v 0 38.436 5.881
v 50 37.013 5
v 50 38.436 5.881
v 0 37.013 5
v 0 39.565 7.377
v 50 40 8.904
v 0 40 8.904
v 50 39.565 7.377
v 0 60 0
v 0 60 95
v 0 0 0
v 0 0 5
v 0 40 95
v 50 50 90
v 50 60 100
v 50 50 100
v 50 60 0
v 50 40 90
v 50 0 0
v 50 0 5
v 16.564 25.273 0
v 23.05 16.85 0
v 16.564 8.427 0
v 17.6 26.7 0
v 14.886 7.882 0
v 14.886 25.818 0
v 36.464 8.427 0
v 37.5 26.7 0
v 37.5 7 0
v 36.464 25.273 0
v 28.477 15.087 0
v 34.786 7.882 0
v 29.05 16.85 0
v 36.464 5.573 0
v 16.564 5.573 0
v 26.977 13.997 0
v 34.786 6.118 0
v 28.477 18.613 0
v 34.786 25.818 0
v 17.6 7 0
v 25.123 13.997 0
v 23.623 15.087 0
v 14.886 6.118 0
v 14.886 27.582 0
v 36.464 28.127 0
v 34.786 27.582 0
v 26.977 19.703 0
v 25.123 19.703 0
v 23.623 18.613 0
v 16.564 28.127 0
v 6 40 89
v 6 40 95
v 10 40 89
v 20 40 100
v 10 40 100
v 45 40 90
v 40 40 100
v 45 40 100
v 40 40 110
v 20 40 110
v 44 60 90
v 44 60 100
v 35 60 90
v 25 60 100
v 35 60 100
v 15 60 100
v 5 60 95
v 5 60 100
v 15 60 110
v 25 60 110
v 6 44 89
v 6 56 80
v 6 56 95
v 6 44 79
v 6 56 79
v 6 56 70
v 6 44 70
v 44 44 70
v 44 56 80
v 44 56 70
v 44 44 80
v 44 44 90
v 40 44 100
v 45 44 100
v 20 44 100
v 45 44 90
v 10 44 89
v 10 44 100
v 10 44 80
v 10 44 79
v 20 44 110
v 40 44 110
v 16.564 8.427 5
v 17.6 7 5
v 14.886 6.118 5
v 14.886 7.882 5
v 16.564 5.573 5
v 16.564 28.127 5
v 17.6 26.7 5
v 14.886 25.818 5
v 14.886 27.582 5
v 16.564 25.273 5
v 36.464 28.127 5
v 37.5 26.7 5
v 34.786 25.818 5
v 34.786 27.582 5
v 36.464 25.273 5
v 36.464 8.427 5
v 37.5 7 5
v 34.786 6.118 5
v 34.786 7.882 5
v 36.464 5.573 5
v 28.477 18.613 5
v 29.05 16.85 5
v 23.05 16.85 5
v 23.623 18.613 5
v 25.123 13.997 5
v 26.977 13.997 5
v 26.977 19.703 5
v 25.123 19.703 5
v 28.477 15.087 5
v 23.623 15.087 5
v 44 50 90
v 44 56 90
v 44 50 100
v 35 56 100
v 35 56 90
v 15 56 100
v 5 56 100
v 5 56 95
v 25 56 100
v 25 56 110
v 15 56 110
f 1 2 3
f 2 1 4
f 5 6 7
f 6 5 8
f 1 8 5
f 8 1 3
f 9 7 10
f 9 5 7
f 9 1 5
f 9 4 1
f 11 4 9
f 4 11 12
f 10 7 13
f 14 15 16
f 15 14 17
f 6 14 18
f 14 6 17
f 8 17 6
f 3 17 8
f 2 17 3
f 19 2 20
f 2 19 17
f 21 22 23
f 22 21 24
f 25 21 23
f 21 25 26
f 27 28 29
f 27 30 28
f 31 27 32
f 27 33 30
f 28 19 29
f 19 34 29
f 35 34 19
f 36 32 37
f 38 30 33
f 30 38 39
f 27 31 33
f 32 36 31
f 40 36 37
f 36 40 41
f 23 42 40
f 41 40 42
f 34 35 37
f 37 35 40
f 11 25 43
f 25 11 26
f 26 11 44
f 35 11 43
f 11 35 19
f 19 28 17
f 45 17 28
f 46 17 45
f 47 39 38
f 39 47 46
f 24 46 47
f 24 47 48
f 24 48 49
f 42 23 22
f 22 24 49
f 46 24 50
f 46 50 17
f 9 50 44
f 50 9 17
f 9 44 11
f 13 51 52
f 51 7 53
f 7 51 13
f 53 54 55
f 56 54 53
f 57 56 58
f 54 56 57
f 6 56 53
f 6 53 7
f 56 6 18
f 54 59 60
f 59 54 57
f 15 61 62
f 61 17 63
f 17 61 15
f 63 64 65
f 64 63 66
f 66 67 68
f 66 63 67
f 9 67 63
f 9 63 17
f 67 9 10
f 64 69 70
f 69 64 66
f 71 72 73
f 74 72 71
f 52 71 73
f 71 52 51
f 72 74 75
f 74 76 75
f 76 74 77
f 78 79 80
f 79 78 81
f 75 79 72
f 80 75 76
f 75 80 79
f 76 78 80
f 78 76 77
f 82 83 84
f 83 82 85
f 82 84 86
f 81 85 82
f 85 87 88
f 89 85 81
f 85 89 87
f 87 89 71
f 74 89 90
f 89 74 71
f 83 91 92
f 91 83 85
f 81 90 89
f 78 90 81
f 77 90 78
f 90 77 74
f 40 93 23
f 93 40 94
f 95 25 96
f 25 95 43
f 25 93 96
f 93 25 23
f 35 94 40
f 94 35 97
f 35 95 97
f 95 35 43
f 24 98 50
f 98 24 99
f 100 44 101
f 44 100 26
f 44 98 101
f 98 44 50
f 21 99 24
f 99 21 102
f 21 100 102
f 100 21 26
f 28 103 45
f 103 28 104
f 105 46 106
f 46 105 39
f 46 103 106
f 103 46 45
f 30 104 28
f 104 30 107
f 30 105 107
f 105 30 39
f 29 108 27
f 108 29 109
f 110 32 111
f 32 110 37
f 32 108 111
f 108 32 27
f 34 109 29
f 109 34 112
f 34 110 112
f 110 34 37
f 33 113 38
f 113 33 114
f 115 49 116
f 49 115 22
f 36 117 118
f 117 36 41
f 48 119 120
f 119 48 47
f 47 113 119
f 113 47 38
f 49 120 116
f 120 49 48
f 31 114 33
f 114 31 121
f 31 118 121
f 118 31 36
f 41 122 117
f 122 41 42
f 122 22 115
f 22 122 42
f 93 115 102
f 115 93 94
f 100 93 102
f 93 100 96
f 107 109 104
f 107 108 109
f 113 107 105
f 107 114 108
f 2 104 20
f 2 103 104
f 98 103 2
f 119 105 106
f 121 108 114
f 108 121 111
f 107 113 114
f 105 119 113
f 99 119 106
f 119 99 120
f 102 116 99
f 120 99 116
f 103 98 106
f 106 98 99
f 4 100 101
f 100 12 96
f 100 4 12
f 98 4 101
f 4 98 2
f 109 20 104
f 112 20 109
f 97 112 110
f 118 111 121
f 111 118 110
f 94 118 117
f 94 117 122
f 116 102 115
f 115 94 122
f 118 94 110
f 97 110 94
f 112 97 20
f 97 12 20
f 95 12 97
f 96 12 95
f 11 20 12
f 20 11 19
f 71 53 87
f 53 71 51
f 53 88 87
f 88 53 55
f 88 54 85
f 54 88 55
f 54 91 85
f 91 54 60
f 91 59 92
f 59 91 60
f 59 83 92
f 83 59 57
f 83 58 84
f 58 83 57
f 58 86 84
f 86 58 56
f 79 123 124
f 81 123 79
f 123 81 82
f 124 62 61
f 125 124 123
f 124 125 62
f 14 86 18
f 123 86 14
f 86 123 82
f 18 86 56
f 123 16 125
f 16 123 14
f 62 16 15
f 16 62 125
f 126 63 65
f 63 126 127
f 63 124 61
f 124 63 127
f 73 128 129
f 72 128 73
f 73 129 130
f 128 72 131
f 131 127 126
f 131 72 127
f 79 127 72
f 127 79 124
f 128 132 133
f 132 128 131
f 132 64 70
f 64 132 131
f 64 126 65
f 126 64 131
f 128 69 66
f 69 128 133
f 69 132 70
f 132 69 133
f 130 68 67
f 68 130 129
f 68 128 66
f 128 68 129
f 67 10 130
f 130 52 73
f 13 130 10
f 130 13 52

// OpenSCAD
// file: nutsnbolts/data-access.scad
// Norm Nuts and Bolts - a OpenSCAD library
// Copyright (C) 2012  Johannes Kneer

// This program is free software: you can redistribute it and/or modify
// it under the terms of the GNU General Public License as published by
// the Free Software Foundation, either version 3 of the License, or
// (at your option) any later version.

// This program is distributed in the hope that it will be useful,
// but WITHOUT ANY WARRANTY; without even the implied warranty of
// MERCHANTABILITY or FITNESS FOR A PARTICULAR PURPOSE.  See the
// GNU General Public License for more details.

// You should have received a copy of the GNU General Public License
// along with this program.  If not, see <http://www.gnu.org/licenses/>.


// DATABASE ACCESS FUNCTIONS AND CONSTANTS



// == CONSTANTS ==

// screw table access keys
_NB_S_DESC            = 0;
_NB_S_FAMKEY			    = 1;
_NB_S_LENGTH          = 2;
_NB_S_NOTHREAD_LENGTH = 3;

_NB_F_DESC			      = 0;
_NB_F_OUTER_DIA       = 1;
_NB_F_INNER_DIA       = 2;
_NB_F_LEAD            = 3;
_NB_F_KEY             = 4;
_NB_F_KEY_DEPTH       = 5;
_NB_F_HEAD_HEIGHT     = 6;
_NB_F_HEAD_DIA        = 7;
_NB_F_NUT_KEY         = 8;
_NB_F_NUT_HEIGHT      = 9;
_NB_F_PITCH_FINE      = 10;
_NB_F_PITCH_MEDIUM    = 11;
_NB_F_PITCH_COARSE    = 12;


// == FUNCTIONS ==

// _get_screw("descriptor")   with descriptor = M8x25
//   find the line for a general object in the data matrix

function _get_screw(n) = data_screw[search([n], data_screw)[0]];
function _get_screw_fam(n) = data_screw_fam[search([_get_screw(n)[_NB_S_FAMKEY]], data_screw_fam)[0]];

function _get_fam(n) = data_screw_fam[search([n], data_screw_fam)[0]];


// _get_XXXXX("descriptor") functions
// find a single property in the database

function _get_desc(n)        = _get_screw(n)[_NB_S_DESC];
function _get_famkey(n)         = _get_screw(n)[_NB_S_FAMKEY];
function _get_length(n)      = _get_screw(n)[_NB_S_LENGTH];
function _get_nt_length(n)   = _get_screw(n)[_NB_S_NOTHREAD_LENGTH];

function _get_outer_dia(n)   = _get_screw_fam(n)[_NB_F_OUTER_DIA];
function _get_inner_dia(n)   = _get_screw_fam(n)[_NB_F_INNER_DIA];
function _get_lead(n)        = _get_screw_fam(n)[_NB_F_LEAD];
function _get_head_height(n) = _get_screw_fam(n)[_NB_F_HEAD_HEIGHT];
function _get_head_dia(n)    = _get_screw_fam(n)[_NB_F_HEAD_DIA];
function _get_nut_key(n)     = _get_screw_fam(n)[_NB_F_NUT_KEY];
function _get_nut_height(n)  = _get_screw_fam(n)[_NB_F_NUT_HEIGHT];
function _get_fine_pitch(n)  = _get_screw_fam(n)[_NB_F_PITCH_FINE];
function _get_medium_pitch(n)  = _get_screw_fam(n)[_NB_F_PITCH_MEDIUM];
function _get_coarse_pitch(n)  = _get_screw_fam(n)[_NB_F_PITCH_COARSE];
// file: top_lock.scad
module top_lock(){
difference(){
    
cube([50,20, 1]);
translate(v = [6,4,-1]){
cube([38,12, 5]);
}
}


cube([10, 4, 10]);
translate(v = [10,0,1]){
cube([10, 4, 20]);
}
translate(v = [20,0,1]){
cube([10, 4, 30]);
}
translate(v = [30,0,1]){
cube([10, 4, 30]);
 }
translate(v = [40,0,1]){
cube([5, 4, 20]);
 }
 
translate(v = [44, 0, 1]){
 cube([6, 10, 10]);
 }
 
translate(v = [44, 10, 1]){
 cube([6, 10, 20]);
 }
 
 
translate(v = [35,16,1]){
cube([10, 4, 10]);
}
translate(v = [25,16,1]){
cube([10, 4, 20]);
 }
translate(v = [15,16,1]){
cube([10, 4, 30]);
 }
translate(v = [5,16,1]){       
cube([10, 4, 20]);
}

cube([6,20,16]);
}
// main file
include <nutsnbolts/cyl_head_bolt.scad>
include <top_lock.scad>

render_thread = "no";
spool_height = 80;



spool_bottom();

module spool_bottom() {
//curve
translate(v = [0,33,0]){
difference(){

cube([50,10, 15]);
translate(v = [-5, 2, 9.65]){
union(){
rotate(a = [0,90,0]){
    cylinder(h = 60, r = 5.1);
  }
translate(v = [0,-3,0]){
cube([60,13, 15]); 
 }
  }
}
}
}

//thing sticking up
translate(v = [0, 40, 0]) {


difference(){
cube([50, 20, spool_height]);

translate(v = [6, 4, 70]){
cube([38, 12, 40]);
}
}

}









//base
difference(){
cube([50, 60, 5]);

translate(v = [0, 4, 0]){
union(){
translate(v = [11, 1, -1]){
}
translate(v = [16.1, 3, 10]) {
screw("M3x10", render_thread);
}

translate(v = [16.1, 22.7, 10] ){
screw("M3x10", render_thread);
}

translate(v = [36, 22.7, 10] ){
screw("M3x10", render_thread);
}

translate(v = [36, 3, 10] ){
screw("M3x10", render_thread);
}
translate(v = [26.05, 12.85, 10]){
    screw("M6x10", render_thread);
    }
}
}
}
//top lock
translate(v = [0, 40, spool_height - 1]) {   
 top_lock();
}
}
